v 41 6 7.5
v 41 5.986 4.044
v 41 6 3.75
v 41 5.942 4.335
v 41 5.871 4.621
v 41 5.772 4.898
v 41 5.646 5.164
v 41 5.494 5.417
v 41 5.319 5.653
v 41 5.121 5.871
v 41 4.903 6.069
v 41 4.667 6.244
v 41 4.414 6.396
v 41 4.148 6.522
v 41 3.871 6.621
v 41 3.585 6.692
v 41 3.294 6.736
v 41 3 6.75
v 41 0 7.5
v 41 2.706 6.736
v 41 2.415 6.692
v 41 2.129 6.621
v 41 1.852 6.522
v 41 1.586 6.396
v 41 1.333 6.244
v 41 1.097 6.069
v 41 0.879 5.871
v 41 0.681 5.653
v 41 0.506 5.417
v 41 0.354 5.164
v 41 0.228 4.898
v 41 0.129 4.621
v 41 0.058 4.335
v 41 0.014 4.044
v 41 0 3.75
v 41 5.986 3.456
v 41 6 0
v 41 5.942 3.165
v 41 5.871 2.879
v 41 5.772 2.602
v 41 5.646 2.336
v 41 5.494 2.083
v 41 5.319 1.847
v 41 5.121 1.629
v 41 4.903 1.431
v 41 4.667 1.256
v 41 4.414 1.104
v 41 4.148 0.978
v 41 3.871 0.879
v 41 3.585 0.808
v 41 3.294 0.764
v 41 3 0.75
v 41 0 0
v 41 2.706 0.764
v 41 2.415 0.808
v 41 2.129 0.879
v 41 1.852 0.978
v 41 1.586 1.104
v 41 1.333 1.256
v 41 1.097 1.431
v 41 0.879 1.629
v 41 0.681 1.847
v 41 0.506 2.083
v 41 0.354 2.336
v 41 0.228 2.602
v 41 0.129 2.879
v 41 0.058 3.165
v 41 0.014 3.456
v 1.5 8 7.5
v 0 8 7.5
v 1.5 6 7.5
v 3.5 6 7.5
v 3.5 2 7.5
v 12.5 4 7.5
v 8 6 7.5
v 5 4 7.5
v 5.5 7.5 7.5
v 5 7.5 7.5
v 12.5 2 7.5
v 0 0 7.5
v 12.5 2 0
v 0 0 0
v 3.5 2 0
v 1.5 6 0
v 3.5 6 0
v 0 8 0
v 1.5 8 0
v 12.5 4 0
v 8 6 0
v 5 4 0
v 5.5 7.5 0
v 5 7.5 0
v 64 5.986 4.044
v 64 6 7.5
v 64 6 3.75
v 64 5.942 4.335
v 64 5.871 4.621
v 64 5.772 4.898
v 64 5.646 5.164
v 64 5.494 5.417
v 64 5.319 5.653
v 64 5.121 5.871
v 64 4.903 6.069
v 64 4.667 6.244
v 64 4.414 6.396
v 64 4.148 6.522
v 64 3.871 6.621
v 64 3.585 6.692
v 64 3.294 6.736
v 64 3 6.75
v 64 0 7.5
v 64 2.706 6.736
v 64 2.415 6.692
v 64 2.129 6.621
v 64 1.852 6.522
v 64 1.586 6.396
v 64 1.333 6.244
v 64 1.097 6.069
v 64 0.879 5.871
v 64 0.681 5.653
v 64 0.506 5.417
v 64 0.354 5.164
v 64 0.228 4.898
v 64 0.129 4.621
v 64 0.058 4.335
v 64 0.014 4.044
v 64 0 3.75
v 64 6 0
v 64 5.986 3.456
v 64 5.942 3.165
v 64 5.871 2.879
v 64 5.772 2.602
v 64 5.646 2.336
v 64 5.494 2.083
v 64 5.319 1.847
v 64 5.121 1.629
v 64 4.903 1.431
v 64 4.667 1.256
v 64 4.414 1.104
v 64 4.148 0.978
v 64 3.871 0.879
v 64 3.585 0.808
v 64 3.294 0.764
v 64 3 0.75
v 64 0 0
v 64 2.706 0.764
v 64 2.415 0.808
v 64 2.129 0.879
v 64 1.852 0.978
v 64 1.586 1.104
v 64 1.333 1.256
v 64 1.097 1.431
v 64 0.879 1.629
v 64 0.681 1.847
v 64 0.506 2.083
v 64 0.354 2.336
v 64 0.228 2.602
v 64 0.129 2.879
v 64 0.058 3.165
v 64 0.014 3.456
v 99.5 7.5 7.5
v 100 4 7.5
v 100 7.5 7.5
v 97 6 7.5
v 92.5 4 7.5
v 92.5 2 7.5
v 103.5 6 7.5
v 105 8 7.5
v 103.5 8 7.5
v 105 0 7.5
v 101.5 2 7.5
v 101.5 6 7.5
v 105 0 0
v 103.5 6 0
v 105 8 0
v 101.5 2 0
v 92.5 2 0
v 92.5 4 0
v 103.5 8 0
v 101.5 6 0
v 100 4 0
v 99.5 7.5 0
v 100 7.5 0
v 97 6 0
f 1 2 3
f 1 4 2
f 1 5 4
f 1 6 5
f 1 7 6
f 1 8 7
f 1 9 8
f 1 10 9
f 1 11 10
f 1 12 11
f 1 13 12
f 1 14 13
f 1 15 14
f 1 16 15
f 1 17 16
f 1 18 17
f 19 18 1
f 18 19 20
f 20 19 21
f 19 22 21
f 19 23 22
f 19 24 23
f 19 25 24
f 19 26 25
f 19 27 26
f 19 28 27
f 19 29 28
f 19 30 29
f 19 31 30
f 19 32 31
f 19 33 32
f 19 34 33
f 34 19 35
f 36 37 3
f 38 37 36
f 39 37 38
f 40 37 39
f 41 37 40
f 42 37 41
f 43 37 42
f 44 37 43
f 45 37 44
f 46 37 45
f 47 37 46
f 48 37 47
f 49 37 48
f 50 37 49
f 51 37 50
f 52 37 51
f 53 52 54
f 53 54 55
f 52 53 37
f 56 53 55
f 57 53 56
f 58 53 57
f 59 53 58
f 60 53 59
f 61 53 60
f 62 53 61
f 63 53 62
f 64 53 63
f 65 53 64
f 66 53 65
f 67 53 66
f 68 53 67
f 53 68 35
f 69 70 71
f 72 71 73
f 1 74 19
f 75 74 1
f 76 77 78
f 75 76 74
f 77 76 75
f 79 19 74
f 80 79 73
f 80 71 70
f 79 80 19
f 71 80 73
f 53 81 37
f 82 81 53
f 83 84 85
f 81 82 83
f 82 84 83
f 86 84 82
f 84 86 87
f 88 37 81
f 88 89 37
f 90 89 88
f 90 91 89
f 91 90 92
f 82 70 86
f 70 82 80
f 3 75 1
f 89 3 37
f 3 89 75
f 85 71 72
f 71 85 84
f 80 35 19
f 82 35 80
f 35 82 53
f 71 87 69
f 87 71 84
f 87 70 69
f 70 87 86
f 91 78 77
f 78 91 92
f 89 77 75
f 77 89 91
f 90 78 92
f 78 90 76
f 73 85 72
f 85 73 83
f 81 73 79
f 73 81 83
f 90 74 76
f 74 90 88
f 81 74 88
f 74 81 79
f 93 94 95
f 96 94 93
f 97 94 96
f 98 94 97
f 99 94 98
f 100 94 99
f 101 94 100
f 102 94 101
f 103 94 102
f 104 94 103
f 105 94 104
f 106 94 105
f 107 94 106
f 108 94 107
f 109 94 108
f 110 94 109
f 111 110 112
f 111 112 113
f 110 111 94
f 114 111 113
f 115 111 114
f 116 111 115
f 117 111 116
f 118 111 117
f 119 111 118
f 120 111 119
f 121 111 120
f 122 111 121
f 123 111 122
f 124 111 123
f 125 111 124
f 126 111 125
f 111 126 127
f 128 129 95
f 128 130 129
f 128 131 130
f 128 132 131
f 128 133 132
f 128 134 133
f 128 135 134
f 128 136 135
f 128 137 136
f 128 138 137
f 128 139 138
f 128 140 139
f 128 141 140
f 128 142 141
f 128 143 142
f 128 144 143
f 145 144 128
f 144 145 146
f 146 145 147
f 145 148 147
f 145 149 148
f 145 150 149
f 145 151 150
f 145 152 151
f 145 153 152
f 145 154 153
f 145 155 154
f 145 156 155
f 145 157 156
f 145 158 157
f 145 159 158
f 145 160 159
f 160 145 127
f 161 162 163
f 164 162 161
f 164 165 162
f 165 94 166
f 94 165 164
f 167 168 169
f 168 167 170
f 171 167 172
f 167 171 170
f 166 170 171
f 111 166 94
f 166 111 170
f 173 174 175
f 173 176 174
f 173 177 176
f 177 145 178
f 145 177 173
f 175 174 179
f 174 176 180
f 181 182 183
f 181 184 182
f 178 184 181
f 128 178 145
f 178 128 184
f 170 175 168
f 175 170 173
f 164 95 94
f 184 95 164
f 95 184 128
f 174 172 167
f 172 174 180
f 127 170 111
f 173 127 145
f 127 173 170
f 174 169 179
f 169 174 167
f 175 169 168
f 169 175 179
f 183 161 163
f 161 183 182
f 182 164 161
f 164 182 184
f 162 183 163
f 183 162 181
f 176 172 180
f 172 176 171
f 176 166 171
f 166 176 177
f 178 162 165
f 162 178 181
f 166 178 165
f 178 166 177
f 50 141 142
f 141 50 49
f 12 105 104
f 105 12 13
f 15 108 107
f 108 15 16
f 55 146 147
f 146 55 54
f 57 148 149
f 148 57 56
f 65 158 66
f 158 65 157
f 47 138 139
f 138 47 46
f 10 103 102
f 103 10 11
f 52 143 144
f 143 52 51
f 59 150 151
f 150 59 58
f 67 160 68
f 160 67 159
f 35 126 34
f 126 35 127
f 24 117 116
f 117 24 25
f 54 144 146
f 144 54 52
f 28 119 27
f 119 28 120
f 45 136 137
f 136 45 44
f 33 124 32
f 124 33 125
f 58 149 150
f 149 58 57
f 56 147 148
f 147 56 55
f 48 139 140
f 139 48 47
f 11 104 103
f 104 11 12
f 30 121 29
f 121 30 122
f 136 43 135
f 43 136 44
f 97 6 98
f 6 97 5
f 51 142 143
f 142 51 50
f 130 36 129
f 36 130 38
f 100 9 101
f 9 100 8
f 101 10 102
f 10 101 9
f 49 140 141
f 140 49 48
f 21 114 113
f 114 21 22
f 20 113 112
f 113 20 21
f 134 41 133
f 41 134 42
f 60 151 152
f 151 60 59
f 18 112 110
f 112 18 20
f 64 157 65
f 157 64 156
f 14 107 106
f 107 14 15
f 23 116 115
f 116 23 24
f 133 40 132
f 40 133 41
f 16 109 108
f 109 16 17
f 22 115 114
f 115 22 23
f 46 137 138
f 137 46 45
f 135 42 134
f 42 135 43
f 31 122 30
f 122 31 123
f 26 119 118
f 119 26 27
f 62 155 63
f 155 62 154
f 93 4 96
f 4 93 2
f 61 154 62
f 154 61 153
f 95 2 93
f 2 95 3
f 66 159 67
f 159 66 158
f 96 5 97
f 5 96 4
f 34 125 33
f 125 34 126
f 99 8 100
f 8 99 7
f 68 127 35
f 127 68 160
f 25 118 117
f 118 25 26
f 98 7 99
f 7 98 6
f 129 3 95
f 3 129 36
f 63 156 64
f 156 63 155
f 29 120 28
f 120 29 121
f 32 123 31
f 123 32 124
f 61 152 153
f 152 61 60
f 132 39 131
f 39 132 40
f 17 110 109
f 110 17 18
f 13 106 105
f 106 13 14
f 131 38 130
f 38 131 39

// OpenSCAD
difference(){
union(){
cube([41,6,7.5]);
cube([1.5,8,7.5]);
hull(){
    translate([5,0,0])
    cube([0.5,7.5,7.5]);
    translate([5+1.5,0,0])
    cube([1.5,6,7.5]);
}
}


translate([3.5,2.5,-1])
cube([1.5,6,7.5+2]);

translate([3.5,2.5+1.5,-1])
rotate([0,0,-90])
cube([2,9,7.5+2]);
}

translate([11+11,3,7.5/2])
rotate([0,90,0])
cylinder(d=6,h=33,$fn=64);
mirror([1,0,0])
translate([-105,0,0]){
difference(){
union(){
cube([41,6,7.5]);
cube([1.5,8,7.5]);
hull(){
    translate([5,0,0])
    cube([0.5,7.5,7.5]);
    translate([5+1.5,0,0])
    cube([1.5,6,7.5]);
}
}


translate([3.5,2.5,-1])
cube([1.5,6,7.5+2]);

translate([3.5,2.5+1.5,-1])
rotate([0,0,-90])
cube([2,9,7.5+2]);
}

translate([11+11,3,7.5/2])
rotate([0,90,0])
cylinder(d=6,h=30,$fn=64);
}
